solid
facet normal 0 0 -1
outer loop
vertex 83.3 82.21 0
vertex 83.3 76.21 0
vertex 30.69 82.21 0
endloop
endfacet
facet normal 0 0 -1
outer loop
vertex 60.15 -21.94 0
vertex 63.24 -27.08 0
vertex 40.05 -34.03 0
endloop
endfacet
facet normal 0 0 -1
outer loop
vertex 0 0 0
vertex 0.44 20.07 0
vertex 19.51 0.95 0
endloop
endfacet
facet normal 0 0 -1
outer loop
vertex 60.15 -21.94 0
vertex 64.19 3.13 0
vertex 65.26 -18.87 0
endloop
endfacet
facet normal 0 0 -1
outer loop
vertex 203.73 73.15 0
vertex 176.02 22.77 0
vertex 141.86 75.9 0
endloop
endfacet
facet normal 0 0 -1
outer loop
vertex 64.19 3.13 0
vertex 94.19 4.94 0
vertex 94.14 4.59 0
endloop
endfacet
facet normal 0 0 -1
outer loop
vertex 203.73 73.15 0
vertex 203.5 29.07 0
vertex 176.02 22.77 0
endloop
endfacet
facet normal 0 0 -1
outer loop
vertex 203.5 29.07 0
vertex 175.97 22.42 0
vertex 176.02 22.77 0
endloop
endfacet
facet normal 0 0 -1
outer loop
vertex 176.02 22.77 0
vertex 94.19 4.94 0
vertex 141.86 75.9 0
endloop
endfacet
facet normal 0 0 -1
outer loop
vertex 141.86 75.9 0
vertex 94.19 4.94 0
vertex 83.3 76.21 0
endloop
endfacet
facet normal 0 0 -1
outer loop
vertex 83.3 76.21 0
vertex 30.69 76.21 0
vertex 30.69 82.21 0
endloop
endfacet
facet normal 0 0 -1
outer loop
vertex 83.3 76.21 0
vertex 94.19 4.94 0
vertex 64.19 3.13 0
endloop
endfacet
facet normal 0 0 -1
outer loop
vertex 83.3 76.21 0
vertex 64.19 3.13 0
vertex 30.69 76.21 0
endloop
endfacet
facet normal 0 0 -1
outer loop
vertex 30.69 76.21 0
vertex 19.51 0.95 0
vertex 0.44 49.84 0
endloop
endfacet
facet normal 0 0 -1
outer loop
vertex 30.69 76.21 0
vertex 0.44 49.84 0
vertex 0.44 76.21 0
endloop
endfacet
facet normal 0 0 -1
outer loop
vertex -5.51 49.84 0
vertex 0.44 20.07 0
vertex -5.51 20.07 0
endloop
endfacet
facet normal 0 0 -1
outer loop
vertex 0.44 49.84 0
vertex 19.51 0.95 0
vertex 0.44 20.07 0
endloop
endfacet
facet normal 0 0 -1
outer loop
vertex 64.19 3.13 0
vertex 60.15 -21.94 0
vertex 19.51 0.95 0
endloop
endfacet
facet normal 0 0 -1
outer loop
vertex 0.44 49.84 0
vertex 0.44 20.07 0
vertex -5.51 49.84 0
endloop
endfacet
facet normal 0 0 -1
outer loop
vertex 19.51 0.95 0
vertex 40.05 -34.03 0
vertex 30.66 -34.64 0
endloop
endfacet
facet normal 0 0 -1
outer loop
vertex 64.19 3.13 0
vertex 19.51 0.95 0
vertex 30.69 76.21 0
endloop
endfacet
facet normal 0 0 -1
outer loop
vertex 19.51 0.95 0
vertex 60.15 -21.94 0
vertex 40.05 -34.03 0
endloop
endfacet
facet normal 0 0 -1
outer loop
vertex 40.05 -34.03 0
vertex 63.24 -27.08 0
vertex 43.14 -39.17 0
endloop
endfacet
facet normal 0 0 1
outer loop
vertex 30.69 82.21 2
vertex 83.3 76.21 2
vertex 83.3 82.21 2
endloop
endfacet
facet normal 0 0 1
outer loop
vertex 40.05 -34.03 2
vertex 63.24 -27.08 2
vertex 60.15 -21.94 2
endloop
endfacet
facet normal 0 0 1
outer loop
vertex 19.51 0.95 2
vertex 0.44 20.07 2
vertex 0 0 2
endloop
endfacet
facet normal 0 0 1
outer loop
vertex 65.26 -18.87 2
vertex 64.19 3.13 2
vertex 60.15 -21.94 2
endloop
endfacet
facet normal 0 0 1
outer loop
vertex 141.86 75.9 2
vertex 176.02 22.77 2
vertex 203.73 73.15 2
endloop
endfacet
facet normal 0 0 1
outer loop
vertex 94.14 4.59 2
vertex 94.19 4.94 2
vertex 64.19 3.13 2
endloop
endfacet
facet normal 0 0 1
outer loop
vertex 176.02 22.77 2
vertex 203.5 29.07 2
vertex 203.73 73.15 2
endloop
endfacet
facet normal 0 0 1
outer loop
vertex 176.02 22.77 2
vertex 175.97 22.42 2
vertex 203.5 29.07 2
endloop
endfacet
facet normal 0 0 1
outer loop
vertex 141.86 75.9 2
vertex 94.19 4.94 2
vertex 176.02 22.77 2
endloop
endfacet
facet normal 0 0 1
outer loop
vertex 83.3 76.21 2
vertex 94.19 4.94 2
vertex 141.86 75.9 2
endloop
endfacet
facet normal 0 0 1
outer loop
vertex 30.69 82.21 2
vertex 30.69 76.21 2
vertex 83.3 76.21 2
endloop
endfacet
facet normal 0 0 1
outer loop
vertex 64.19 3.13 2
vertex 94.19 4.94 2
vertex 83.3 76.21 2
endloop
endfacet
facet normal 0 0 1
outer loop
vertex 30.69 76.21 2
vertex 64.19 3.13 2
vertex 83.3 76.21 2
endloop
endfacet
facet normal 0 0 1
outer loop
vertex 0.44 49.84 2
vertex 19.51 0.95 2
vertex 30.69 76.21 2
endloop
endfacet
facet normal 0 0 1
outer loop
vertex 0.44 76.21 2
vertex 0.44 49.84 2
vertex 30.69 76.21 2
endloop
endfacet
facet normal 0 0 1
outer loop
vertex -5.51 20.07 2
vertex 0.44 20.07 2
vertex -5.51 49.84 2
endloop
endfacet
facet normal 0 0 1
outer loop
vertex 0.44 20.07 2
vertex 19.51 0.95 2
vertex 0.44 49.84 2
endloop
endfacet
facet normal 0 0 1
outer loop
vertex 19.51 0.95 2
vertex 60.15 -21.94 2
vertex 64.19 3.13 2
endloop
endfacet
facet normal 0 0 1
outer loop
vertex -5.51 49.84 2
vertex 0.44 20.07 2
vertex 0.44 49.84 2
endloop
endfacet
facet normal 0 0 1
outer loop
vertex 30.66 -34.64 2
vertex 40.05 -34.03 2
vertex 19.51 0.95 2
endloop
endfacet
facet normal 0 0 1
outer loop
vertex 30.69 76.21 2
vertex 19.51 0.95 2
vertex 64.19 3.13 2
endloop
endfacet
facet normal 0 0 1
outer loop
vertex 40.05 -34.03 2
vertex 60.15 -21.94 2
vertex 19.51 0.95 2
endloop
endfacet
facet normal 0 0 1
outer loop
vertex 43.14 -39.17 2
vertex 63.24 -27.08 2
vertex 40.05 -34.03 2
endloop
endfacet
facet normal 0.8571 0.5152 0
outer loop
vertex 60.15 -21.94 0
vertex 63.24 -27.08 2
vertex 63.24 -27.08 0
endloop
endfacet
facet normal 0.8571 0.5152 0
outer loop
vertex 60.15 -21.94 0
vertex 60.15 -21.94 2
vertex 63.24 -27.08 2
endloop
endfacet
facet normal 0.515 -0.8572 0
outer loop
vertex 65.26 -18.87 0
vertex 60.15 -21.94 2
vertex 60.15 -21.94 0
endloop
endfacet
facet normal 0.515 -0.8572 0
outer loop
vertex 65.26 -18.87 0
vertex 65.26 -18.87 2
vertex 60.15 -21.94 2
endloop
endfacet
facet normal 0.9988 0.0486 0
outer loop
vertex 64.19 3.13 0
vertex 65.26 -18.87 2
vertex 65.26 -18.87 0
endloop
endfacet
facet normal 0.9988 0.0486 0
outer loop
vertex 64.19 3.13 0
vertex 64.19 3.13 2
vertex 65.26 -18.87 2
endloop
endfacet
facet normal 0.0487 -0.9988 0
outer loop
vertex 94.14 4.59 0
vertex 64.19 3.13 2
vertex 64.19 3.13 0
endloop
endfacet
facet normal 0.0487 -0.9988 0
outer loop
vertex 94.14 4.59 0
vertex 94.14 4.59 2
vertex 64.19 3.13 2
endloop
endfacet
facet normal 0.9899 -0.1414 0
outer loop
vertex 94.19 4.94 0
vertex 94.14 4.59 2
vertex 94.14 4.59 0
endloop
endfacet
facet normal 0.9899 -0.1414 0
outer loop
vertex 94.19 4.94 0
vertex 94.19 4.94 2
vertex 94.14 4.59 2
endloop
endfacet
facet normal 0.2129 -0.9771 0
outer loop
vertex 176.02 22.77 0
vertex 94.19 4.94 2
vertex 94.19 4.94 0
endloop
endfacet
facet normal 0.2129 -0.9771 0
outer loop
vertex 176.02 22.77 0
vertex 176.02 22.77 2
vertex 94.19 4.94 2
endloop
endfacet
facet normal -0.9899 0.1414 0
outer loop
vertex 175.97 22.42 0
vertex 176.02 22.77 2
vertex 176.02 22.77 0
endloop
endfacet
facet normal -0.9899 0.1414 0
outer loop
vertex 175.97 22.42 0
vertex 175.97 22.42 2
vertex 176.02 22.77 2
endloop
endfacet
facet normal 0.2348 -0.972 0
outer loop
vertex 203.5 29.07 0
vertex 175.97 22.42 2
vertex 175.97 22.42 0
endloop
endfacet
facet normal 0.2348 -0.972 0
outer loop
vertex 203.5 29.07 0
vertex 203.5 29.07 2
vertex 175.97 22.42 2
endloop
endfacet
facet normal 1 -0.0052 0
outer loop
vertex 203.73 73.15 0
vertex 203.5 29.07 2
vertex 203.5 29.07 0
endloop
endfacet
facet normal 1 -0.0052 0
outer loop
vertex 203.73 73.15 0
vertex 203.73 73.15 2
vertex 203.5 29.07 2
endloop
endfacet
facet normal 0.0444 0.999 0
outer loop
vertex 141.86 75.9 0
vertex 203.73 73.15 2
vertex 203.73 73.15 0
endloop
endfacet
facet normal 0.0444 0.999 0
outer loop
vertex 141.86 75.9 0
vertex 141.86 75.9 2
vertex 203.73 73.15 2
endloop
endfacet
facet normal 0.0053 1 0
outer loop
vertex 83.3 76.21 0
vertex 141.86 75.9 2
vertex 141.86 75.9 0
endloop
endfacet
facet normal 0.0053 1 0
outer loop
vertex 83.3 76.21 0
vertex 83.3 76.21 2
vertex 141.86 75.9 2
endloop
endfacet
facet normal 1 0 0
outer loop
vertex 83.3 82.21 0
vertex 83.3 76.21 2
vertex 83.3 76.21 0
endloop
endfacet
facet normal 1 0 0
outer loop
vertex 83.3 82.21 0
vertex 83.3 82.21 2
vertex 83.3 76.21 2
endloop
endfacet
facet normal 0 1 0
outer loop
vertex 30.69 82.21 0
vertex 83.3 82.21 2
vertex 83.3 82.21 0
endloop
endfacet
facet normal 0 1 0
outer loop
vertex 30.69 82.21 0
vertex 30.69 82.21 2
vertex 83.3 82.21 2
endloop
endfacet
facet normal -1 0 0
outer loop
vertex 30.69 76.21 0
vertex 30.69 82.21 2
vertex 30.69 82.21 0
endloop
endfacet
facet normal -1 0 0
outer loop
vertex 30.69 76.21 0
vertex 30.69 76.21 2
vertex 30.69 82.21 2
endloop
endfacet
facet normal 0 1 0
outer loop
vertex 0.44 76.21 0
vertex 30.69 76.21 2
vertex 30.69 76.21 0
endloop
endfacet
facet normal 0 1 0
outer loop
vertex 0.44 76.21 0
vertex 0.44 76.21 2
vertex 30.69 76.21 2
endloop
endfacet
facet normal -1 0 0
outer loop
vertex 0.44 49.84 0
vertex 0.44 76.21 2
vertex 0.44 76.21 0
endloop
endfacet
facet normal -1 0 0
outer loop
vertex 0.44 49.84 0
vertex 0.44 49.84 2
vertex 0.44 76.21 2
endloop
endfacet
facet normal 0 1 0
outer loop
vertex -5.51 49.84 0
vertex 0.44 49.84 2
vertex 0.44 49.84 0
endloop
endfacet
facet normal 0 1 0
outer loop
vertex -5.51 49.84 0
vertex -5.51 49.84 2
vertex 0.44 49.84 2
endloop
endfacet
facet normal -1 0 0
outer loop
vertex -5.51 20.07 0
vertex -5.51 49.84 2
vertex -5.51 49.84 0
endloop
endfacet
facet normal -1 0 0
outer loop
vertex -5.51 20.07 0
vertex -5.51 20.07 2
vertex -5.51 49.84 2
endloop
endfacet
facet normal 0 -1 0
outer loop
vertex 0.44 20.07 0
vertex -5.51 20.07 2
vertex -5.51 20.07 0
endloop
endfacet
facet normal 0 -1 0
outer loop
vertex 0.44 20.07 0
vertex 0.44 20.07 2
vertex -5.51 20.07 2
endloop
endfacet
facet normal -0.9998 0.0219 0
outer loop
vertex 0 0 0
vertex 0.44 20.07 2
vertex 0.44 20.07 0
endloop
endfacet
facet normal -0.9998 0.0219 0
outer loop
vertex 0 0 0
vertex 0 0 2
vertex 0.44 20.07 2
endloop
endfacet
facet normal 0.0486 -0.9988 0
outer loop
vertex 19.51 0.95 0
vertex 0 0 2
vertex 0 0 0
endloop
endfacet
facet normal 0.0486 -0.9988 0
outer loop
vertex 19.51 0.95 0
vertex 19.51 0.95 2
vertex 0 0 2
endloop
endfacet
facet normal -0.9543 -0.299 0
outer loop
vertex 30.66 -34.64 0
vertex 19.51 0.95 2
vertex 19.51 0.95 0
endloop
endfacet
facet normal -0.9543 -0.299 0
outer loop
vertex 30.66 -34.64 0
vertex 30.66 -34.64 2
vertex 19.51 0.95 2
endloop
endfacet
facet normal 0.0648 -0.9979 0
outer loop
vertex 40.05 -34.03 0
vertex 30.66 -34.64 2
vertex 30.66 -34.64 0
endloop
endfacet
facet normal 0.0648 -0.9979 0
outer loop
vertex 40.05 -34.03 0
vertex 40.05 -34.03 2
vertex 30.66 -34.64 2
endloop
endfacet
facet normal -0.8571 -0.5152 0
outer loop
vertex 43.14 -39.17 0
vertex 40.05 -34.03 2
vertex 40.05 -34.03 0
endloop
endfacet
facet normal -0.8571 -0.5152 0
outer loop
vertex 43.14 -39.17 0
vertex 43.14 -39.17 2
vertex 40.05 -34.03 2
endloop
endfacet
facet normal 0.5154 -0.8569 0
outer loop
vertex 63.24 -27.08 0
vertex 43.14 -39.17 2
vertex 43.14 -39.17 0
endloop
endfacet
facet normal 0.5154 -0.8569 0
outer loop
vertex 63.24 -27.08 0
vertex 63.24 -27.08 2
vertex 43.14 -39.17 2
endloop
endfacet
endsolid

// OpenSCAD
height = 2;

linear_extrude(height=height)
polygon([
[0,0]
,[0+19.51,0+0.95]
,[0+19.51+11.15,0+0.95+-35.59]
,[0+19.51+11.15+9.39,0+0.95+-35.59+0.61]
,[0+19.51+11.15+9.39+3.09,0+0.95+-35.59+0.61+-5.14]
,[0+19.51+11.15+9.39+3.09+20.10,0+0.95+-35.59+0.61+-5.14+12.09]
,[0+19.51+11.15+9.39+3.09+20.10+-3.09,0+0.95+-35.59+0.61+-5.14+12.09+5.14]
,[0+19.51+11.15+9.39+3.09+20.10+-3.09+5.11,0+0.95+-35.59+0.61+-5.14+12.09+5.14+3.07]
,[0+19.51+11.15+9.39+3.09+20.10+-3.09+5.11+-1.07,0+0.95+-35.59+0.61+-5.14+12.09+5.14+3.07+22]
,[0+19.51+11.15+9.39+3.09+20.10+-3.09+5.11+-1.07+29.95,0+0.95+-35.59+0.61+-5.14+12.09+5.14+3.07+22+1.46]
,[0+19.51+11.15+9.39+3.09+20.10+-3.09+5.11+-1.07+29.95+0.05,0+0.95+-35.59+0.61+-5.14+12.09+5.14+3.07+22+1.46+0.35]
,[0+19.51+11.15+9.39+3.09+20.10+-3.09+5.11+-1.07+29.95+0.05+81.83,0+0.95+-35.59+0.61+-5.14+12.09+5.14+3.07+22+1.46+0.35+17.83]
,[0+19.51+11.15+9.39+3.09+20.10+-3.09+5.11+-1.07+29.95+0.05+81.83+-0.05,0+0.95+-35.59+0.61+-5.14+12.09+5.14+3.07+22+1.46+0.35+17.83+-0.35]
,[0+19.51+11.15+9.39+3.09+20.10+-3.09+5.11+-1.07+29.95+0.05+81.83+-0.05+27.53,0+0.95+-35.59+0.61+-5.14+12.09+5.14+3.07+22+1.46+0.35+17.83+-0.35+6.65]
,[0+19.51+11.15+9.39+3.09+20.10+-3.09+5.11+-1.07+29.95+0.05+81.83+-0.05+27.53+0.23,0+0.95+-35.59+0.61+-5.14+12.09+5.14+3.07+22+1.46+0.35+17.83+-0.35+6.65+44.08]
,[0+19.51+11.15+9.39+3.09+20.10+-3.09+5.11+-1.07+29.95+0.05+81.83+-0.05+27.53+0.23+-61.87,0+0.95+-35.59+0.61+-5.14+12.09+5.14+3.07+22+1.46+0.35+17.83+-0.35+6.65+44.08+2.75]
,[0+19.51+11.15+9.39+3.09+20.10+-3.09+5.11+-1.07+29.95+0.05+81.83+-0.05+27.53+0.23+-61.87+-58.56,0+0.95+-35.59+0.61+-5.14+12.09+5.14+3.07+22+1.46+0.35+17.83+-0.35+6.65+44.08+2.75+0.31]
,[0+19.51+11.15+9.39+3.09+20.10+-3.09+5.11+-1.07+29.95+0.05+81.83+-0.05+27.53+0.23+-61.87+-58.56+0,0+0.95+-35.59+0.61+-5.14+12.09+5.14+3.07+22+1.46+0.35+17.83+-0.35+6.65+44.08+2.75+0.31+6]
,[0+19.51+11.15+9.39+3.09+20.10+-3.09+5.11+-1.07+29.95+0.05+81.83+-0.05+27.53+0.23+-61.87+-58.56+0+-52.61,0+0.95+-35.59+0.61+-5.14+12.09+5.14+3.07+22+1.46+0.35+17.83+-0.35+6.65+44.08+2.75+0.31+6+0]
,[0+19.51+11.15+9.39+3.09+20.10+-3.09+5.11+-1.07+29.95+0.05+81.83+-0.05+27.53+0.23+-61.87+-58.56+0+-52.61+0,0+0.95+-35.59+0.61+-5.14+12.09+5.14+3.07+22+1.46+0.35+17.83+-0.35+6.65+44.08+2.75+0.31+6+0+-6]
,[0+19.51+11.15+9.39+3.09+20.10+-3.09+5.11+-1.07+29.95+0.05+81.83+-0.05+27.53+0.23+-61.87+-58.56+0+-52.61+0+-30.25,0+0.95+-35.59+0.61+-5.14+12.09+5.14+3.07+22+1.46+0.35+17.83+-0.35+6.65+44.08+2.75+0.31+6+0+-6+0]
,[0+19.51+11.15+9.39+3.09+20.10+-3.09+5.11+-1.07+29.95+0.05+81.83+-0.05+27.53+0.23+-61.87+-58.56+0+-52.61+0+-30.25+0,0+0.95+-35.59+0.61+-5.14+12.09+5.14+3.07+22+1.46+0.35+17.83+-0.35+6.65+44.08+2.75+0.31+6+0+-6+0+-26.37]
,[0+19.51+11.15+9.39+3.09+20.10+-3.09+5.11+-1.07+29.95+0.05+81.83+-0.05+27.53+0.23+-61.87+-58.56+0+-52.61+0+-30.25+0+-5.95,0+0.95+-35.59+0.61+-5.14+12.09+5.14+3.07+22+1.46+0.35+17.83+-0.35+6.65+44.08+2.75+0.31+6+0+-6+0+-26.37+0]
,[0+19.51+11.15+9.39+3.09+20.10+-3.09+5.11+-1.07+29.95+0.05+81.83+-0.05+27.53+0.23+-61.87+-58.56+0+-52.61+0+-30.25+0+-5.95+0,0+0.95+-35.59+0.61+-5.14+12.09+5.14+3.07+22+1.46+0.35+17.83+-0.35+6.65+44.08+2.75+0.31+6+0+-6+0+-26.37+0+-29.77]
,[0+19.51+11.15+9.39+3.09+20.10+-3.09+5.11+-1.07+29.95+0.05+81.83+-0.05+27.53+0.23+-61.87+-58.56+0+-52.61+0+-30.25+0+-5.95+0+5.95,0+0.95+-35.59+0.61+-5.14+12.09+5.14+3.07+22+1.46+0.35+17.83+-0.35+6.65+44.08+2.75+0.31+6+0+-6+0+-26.37+0+-29.77+0]



]);
